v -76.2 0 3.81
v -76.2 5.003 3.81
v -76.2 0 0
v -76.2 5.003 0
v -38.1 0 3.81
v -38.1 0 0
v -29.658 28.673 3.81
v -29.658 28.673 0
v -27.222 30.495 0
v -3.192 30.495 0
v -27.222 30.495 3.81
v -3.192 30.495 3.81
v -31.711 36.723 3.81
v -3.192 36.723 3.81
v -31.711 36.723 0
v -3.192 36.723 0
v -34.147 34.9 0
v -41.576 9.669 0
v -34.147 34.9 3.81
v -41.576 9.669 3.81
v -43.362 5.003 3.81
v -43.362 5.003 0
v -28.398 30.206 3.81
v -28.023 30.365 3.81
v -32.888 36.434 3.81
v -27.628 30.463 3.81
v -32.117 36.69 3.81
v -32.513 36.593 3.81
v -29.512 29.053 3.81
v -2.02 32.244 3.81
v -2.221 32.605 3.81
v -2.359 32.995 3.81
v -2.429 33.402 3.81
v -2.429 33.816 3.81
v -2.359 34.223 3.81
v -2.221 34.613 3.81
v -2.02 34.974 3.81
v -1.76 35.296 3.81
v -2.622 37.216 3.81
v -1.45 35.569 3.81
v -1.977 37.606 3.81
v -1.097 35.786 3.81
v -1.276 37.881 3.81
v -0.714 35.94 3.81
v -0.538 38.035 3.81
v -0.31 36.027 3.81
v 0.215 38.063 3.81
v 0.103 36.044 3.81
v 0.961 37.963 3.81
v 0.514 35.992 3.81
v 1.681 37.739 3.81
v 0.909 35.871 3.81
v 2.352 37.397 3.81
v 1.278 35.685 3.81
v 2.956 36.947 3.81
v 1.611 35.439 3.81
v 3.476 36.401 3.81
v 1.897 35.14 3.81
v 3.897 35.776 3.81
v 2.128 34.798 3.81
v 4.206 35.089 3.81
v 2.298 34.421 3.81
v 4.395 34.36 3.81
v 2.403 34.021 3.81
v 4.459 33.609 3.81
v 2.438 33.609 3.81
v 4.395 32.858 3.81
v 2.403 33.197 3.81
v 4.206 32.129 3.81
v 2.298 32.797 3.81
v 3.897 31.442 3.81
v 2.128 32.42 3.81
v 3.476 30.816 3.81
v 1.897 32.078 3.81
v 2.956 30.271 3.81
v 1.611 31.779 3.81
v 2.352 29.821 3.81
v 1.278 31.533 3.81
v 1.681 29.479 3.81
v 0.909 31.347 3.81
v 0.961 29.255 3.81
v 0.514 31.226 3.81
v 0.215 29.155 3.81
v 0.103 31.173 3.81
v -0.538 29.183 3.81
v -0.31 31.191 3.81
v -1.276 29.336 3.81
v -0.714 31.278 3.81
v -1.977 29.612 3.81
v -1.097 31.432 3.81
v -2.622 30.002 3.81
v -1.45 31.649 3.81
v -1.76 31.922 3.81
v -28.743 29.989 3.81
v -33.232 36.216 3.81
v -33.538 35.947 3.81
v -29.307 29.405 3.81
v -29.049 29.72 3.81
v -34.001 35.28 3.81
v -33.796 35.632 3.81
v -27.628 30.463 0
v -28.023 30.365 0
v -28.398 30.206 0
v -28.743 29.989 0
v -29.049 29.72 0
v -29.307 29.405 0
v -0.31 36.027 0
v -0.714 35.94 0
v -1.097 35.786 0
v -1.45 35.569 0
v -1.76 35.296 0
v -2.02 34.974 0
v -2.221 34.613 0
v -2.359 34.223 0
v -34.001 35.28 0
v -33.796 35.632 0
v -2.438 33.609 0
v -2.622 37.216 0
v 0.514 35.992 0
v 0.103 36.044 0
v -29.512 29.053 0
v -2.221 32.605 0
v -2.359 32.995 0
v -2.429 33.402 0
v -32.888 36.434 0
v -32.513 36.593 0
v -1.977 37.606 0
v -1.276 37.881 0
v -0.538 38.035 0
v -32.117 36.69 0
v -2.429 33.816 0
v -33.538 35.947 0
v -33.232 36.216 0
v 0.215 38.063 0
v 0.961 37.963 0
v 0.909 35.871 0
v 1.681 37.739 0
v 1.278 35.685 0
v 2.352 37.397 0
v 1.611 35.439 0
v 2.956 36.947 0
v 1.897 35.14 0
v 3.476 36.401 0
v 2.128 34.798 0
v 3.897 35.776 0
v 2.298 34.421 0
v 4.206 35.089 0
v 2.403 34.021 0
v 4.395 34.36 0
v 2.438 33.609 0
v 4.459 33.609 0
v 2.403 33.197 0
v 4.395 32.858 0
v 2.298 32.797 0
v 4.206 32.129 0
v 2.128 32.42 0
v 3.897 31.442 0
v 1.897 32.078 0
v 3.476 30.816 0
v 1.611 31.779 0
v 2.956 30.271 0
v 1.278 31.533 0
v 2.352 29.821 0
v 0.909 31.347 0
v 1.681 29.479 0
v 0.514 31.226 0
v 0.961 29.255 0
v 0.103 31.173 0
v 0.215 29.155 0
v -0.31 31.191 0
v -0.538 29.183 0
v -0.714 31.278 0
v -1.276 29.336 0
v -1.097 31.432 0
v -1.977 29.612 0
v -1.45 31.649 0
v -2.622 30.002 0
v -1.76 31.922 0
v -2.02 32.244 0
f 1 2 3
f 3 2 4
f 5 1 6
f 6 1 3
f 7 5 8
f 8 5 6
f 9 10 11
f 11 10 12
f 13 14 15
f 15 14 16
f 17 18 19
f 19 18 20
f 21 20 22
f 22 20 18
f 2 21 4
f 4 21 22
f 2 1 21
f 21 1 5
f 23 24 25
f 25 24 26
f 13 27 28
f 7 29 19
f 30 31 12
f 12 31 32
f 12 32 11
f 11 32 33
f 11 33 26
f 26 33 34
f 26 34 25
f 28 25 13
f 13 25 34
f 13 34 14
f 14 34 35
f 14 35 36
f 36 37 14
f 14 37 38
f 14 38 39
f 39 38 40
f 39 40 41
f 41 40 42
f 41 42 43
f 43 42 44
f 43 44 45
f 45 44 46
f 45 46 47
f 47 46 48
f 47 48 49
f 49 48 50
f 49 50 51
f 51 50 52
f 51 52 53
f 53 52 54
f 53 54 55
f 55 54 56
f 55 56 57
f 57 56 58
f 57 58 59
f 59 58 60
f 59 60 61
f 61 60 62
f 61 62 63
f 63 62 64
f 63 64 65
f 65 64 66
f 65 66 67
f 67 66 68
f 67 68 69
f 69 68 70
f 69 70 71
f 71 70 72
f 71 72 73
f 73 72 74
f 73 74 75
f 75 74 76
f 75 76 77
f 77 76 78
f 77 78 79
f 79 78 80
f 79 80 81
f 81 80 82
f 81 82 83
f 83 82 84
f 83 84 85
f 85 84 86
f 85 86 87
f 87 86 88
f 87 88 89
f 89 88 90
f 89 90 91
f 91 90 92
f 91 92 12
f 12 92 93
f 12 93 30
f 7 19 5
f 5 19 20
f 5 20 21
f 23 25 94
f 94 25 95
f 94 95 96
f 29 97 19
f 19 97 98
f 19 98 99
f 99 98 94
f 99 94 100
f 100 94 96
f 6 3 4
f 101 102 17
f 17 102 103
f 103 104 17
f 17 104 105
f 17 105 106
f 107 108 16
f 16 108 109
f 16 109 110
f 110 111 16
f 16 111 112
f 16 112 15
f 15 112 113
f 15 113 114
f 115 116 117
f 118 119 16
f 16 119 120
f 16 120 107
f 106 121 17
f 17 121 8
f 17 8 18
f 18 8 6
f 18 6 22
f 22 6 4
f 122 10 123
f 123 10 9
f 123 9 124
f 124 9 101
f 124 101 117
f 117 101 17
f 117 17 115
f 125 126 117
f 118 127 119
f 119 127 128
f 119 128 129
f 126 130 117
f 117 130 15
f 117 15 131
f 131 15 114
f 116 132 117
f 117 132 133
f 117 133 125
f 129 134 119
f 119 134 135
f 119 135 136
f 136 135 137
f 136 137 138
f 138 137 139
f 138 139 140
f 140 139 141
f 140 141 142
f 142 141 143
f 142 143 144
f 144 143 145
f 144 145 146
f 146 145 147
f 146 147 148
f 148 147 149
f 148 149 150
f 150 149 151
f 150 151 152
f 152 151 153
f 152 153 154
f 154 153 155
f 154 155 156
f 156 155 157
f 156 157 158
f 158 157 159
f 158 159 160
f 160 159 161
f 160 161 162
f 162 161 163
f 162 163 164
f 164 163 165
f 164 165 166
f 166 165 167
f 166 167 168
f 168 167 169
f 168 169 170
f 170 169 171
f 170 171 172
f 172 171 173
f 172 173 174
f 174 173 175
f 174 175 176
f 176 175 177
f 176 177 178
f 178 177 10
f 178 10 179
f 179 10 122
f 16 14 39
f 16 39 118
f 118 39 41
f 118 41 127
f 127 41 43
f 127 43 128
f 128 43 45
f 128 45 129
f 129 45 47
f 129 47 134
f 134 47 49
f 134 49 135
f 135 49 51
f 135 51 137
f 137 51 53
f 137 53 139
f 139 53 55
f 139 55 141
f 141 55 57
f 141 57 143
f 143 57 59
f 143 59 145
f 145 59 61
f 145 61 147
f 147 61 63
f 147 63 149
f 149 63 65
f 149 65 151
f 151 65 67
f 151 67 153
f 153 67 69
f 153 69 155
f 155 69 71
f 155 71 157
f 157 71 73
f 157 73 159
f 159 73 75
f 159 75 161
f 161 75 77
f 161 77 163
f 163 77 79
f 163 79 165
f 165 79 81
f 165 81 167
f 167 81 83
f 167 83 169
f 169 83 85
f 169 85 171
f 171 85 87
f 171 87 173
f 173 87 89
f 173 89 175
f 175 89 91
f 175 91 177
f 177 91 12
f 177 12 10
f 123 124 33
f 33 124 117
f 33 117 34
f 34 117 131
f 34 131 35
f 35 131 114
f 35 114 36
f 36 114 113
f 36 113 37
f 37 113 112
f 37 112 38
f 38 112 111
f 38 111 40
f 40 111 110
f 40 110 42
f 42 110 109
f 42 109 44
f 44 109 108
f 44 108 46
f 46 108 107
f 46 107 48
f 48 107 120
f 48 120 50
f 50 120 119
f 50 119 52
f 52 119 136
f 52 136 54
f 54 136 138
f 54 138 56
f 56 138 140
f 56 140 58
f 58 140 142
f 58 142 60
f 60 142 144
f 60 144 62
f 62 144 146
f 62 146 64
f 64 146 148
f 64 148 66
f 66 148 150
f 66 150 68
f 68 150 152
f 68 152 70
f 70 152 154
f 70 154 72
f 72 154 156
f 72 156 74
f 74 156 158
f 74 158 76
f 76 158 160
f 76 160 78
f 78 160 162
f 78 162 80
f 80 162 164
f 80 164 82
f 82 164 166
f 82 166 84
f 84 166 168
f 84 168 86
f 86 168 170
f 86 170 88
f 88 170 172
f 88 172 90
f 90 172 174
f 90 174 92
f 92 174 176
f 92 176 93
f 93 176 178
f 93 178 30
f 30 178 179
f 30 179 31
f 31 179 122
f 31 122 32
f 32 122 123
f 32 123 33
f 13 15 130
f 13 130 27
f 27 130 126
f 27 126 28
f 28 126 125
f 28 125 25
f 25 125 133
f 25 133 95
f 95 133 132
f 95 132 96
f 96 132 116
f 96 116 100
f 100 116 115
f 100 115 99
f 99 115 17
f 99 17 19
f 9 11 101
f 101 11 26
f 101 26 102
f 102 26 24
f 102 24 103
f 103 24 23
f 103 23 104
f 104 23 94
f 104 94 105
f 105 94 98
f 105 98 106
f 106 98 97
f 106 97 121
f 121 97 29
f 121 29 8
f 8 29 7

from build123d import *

# Parameters (mm, degrees)
BOSS_EXTRUDE1_DEPTH = 3.81
SKETCH2_R           = 4.458973568
BOSS_EXTRUDE2_DEPTH = 3.81
SKETCH3_R           = 2.437666758
CUT_EXTRUDE1_DEPTH  = 5.08
FILLET1_R           = 2.54
FILLET2_R           = 2.54


with BuildPart() as part:
    # Sketch1 → Boss-Extrude1 (new body)
    with BuildSketch(Plane.XY):
        Polygon((0, 30.495285818), (0, 36.722551391), (-33.610812147, 36.722551391), (-41.575749468, 9.669435316), (-43.362004736, 5.002722218), (-76.2, 5.002722218), (-76.2, 0), (-38.1, 0), (-29.121624295, 30.495285818), align=None)
    extrude(amount=BOSS_EXTRUDE1_DEPTH)

    # Sketch2 → Boss-Extrude2 (add)
    with BuildSketch(Plane.XY.offset(3.81)):
        with Locations((0, 33.608918604)):
            Circle(SKETCH2_R)
    extrude(amount=-BOSS_EXTRUDE2_DEPTH)

    # Sketch3 → Cut-Extrude1 (cut)
    with BuildSketch(Plane.XY.offset(3.81)):
        with Locations((0, 33.608918604)):
            Circle(SKETCH3_R)
    extrude(amount=-CUT_EXTRUDE1_DEPTH, mode=Mode.SUBTRACT)

    # Fillet1
    fillet1_edges = [part.edges().sort_by_distance(p)[0] for p in [
        (-33.610812147, 36.722551391, 1.905),
    ]]
    fillet(fillet1_edges, radius=FILLET1_R)

    # Fillet2
    fillet2_edges = [part.edges().sort_by_distance(p)[0] for p in [
        (-29.121624295, 30.495285818, 1.905),
    ]]
    fillet(fillet2_edges, radius=FILLET2_R)


solid = part.part
